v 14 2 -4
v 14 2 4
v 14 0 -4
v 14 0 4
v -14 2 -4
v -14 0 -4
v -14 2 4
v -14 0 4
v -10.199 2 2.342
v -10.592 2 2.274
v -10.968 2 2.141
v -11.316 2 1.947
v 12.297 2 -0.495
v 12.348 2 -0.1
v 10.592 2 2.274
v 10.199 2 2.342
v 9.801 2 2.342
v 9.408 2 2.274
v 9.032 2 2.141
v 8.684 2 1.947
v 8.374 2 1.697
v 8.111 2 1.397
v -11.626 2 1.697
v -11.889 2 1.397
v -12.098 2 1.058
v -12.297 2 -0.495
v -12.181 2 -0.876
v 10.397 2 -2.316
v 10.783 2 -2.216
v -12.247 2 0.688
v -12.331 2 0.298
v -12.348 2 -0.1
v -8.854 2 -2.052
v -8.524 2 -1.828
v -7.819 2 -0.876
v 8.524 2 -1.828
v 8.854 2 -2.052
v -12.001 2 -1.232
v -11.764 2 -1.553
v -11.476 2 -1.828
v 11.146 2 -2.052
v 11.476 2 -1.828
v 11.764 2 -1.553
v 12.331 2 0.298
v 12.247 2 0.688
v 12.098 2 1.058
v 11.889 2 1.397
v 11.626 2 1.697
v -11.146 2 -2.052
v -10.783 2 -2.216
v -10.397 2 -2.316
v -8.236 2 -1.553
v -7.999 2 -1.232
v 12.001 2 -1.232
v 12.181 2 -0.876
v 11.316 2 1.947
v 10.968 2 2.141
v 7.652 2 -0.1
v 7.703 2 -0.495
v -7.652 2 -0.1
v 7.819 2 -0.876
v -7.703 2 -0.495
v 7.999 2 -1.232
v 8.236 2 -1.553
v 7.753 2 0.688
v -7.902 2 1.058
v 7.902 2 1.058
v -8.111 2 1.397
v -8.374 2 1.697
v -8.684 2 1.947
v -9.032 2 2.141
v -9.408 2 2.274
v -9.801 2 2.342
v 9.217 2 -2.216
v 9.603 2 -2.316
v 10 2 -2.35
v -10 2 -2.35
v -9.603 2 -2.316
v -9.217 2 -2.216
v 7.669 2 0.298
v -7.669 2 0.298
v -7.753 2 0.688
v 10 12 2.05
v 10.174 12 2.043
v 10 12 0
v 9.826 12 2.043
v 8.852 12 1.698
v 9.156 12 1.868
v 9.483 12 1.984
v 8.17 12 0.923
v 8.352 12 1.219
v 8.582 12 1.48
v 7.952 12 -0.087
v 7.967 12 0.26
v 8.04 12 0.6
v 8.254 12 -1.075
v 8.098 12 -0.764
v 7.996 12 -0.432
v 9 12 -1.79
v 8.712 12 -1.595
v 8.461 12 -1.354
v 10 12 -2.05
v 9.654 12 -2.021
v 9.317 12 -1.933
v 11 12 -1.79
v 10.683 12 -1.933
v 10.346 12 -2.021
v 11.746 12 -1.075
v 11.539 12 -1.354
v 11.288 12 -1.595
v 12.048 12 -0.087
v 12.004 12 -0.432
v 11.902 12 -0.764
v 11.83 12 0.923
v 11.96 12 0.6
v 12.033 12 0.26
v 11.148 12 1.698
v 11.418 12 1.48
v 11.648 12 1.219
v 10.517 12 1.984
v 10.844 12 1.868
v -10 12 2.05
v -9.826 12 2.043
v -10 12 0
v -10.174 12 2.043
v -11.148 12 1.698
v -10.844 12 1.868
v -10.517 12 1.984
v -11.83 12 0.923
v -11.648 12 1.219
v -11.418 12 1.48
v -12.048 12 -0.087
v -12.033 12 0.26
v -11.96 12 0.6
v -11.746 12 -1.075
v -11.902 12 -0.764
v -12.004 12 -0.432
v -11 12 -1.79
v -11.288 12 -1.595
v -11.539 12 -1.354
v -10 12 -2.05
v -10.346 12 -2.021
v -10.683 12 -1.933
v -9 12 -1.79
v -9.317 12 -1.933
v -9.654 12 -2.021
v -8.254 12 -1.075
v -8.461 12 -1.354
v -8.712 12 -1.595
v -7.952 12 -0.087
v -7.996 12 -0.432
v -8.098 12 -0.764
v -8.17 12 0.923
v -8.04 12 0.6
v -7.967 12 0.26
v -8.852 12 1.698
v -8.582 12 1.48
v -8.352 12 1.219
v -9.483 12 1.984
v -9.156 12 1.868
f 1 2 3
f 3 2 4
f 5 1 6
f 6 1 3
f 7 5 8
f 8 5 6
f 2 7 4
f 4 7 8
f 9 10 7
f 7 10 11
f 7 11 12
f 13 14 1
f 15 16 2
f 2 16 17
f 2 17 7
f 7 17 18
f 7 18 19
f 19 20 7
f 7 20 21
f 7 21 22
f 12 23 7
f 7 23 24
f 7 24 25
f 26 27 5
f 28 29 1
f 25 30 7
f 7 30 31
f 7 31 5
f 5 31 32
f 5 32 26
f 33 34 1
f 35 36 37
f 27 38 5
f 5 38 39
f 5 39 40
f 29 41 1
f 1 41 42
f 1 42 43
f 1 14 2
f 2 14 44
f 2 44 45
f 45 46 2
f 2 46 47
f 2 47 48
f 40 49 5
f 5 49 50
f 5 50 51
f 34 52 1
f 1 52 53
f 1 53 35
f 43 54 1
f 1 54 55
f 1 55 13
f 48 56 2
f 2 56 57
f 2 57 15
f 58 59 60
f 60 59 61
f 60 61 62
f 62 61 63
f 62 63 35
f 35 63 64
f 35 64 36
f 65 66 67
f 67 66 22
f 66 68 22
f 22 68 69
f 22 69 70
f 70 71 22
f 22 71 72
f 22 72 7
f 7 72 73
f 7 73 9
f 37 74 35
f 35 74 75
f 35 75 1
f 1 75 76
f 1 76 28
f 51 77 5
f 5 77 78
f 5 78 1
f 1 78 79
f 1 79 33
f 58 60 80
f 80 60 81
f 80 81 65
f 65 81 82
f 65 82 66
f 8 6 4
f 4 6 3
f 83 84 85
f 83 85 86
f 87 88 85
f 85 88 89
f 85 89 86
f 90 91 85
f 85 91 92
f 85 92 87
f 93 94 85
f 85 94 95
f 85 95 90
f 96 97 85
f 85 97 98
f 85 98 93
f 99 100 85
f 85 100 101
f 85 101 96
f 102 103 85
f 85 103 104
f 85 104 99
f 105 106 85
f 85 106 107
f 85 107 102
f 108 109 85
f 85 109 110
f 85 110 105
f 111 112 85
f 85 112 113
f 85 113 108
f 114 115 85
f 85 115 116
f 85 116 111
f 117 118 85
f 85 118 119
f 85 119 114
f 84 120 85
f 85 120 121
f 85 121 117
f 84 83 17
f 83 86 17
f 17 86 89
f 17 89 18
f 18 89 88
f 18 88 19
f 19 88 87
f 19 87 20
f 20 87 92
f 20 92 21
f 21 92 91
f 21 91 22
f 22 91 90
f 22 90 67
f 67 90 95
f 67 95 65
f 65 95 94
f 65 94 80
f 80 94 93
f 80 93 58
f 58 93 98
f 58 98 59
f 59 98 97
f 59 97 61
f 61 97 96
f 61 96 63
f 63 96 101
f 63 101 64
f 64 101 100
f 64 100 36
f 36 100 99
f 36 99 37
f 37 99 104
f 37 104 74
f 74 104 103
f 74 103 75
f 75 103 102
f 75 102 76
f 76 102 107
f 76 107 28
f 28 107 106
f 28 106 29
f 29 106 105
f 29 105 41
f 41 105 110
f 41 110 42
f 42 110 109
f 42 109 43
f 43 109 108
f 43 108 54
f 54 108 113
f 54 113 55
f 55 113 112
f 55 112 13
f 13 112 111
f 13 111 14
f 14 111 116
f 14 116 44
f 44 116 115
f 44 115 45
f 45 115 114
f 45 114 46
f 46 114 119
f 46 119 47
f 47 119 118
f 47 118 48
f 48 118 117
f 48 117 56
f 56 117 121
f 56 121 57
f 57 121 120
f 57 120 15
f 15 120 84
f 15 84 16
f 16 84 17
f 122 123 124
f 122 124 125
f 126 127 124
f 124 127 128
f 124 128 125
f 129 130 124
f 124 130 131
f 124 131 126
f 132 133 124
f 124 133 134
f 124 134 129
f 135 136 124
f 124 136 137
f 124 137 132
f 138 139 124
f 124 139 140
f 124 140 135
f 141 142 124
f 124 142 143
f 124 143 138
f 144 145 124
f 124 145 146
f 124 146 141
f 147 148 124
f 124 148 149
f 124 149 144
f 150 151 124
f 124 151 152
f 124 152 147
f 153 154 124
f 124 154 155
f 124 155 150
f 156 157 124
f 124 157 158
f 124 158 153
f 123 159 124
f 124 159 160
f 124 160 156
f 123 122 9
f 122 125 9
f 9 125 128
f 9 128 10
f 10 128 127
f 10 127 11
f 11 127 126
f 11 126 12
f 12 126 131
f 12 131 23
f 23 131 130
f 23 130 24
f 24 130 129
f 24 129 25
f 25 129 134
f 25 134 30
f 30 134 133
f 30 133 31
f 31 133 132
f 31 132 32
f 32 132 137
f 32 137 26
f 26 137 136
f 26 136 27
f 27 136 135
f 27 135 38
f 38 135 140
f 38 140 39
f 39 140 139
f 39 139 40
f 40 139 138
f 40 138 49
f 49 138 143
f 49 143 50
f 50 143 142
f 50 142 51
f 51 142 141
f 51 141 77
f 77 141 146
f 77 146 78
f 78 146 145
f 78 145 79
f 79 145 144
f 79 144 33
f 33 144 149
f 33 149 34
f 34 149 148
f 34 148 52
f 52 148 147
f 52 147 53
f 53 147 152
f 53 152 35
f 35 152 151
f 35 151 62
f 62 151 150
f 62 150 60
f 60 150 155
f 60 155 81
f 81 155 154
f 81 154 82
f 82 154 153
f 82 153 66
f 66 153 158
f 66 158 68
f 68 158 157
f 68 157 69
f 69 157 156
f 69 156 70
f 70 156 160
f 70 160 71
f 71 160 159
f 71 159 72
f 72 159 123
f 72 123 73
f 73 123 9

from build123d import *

# Parameters (mm, degrees)
SKETCH2_W                    = 28
SKETCH2_H                    = 8
BOSS_EXTRUDE1_DEPTH          = 2
SKETCH3_R                    = 2.35
BOSS_EXTRUDE2_DEPTH          = 10
CHAMFER1_SIZE                = 10
CHAMFER1_SIZE_2              = 0.3
LPATTERN1_COUNT              = 2
LPATTERN1_PITCH              = 20
CHAMFER1_OF_LPATTERN1_SIZE   = 10
CHAMFER1_OF_LPATTERN1_SIZE_2 = 0.3


with BuildPart() as part:
    # Sketch2 → Boss-Extrude1 (new body)
    with BuildSketch(Plane(origin=(0, 0, 0), x_dir=(1, 0, 0), z_dir=(0, 1, 0))):
        Rectangle(SKETCH2_W, SKETCH2_H)
    extrude(amount=BOSS_EXTRUDE1_DEPTH)

    # Sketch3 → Boss-Extrude2 (add)
    with BuildSketch(Plane(origin=(0, 2, 0), x_dir=(1, 0, 0), z_dir=(0, 1, 0))):
        with Locations(Location((10, 0, 0), (0, 0, 90))):
            Circle(SKETCH3_R)
    boss_extrude2 = extrude(amount=BOSS_EXTRUDE2_DEPTH)

    # Chamfer1
    # the kernel refuses this chamfer: 10, 0.3 mm, written as the material it takes off along each edge
    with BuildSketch(Plane(origin=(10, 12, 0), x_dir=(0, 0, -1), z_dir=(1, 0, 0))) as chamfer1_piece_1_section:
        Polygon((2.35, -CHAMFER1_SIZE), (2.35 - CHAMFER1_SIZE_2, 0), (2.35, 0), align=None)
    chamfer1_piece_1 = revolve(axis=Axis((10, 12, 0), (0, 1, 0)), mode=Mode.PRIVATE)
    chamfer1_piece_1 = split(chamfer1_piece_1, bisect_by=Plane(origin=(10, 2, 2.231636086), z_dir=(0, 1, 0)), keep=Keep.TOP, mode=Mode.PRIVATE)
    add(chamfer1_piece_1, mode=Mode.SUBTRACT)

    # LPattern1: Boss-Extrude2 ×2
    with Locations(*[(-i * LPATTERN1_PITCH, 0, 0) for i in range(1, LPATTERN1_COUNT)]):
        add(boss_extrude2)

    # Chamfer1 of LPattern1
    # the kernel refuses this chamfer: 10, 0.3 mm, written as the material it takes off along each edge
    with BuildSketch(Plane(origin=(-10, 12, 0), x_dir=(0, 0, -1), z_dir=(1, 0, 0))) as chamfer1_of_lpattern1_piece_1_section:
        Polygon((2.35, -CHAMFER1_OF_LPATTERN1_SIZE), (2.35 - CHAMFER1_OF_LPATTERN1_SIZE_2, 0), (2.35, 0), align=None)
    chamfer1_of_lpattern1_piece_1 = revolve(axis=Axis((-10, 12, 0), (0, 1, 0)), mode=Mode.PRIVATE)
    chamfer1_of_lpattern1_piece_1 = split(chamfer1_of_lpattern1_piece_1, bisect_by=Plane(origin=(-10, 2, 2.231636086), z_dir=(0, 1, 0)), keep=Keep.TOP, mode=Mode.PRIVATE)
    add(chamfer1_of_lpattern1_piece_1, mode=Mode.SUBTRACT)


solid = part.part
